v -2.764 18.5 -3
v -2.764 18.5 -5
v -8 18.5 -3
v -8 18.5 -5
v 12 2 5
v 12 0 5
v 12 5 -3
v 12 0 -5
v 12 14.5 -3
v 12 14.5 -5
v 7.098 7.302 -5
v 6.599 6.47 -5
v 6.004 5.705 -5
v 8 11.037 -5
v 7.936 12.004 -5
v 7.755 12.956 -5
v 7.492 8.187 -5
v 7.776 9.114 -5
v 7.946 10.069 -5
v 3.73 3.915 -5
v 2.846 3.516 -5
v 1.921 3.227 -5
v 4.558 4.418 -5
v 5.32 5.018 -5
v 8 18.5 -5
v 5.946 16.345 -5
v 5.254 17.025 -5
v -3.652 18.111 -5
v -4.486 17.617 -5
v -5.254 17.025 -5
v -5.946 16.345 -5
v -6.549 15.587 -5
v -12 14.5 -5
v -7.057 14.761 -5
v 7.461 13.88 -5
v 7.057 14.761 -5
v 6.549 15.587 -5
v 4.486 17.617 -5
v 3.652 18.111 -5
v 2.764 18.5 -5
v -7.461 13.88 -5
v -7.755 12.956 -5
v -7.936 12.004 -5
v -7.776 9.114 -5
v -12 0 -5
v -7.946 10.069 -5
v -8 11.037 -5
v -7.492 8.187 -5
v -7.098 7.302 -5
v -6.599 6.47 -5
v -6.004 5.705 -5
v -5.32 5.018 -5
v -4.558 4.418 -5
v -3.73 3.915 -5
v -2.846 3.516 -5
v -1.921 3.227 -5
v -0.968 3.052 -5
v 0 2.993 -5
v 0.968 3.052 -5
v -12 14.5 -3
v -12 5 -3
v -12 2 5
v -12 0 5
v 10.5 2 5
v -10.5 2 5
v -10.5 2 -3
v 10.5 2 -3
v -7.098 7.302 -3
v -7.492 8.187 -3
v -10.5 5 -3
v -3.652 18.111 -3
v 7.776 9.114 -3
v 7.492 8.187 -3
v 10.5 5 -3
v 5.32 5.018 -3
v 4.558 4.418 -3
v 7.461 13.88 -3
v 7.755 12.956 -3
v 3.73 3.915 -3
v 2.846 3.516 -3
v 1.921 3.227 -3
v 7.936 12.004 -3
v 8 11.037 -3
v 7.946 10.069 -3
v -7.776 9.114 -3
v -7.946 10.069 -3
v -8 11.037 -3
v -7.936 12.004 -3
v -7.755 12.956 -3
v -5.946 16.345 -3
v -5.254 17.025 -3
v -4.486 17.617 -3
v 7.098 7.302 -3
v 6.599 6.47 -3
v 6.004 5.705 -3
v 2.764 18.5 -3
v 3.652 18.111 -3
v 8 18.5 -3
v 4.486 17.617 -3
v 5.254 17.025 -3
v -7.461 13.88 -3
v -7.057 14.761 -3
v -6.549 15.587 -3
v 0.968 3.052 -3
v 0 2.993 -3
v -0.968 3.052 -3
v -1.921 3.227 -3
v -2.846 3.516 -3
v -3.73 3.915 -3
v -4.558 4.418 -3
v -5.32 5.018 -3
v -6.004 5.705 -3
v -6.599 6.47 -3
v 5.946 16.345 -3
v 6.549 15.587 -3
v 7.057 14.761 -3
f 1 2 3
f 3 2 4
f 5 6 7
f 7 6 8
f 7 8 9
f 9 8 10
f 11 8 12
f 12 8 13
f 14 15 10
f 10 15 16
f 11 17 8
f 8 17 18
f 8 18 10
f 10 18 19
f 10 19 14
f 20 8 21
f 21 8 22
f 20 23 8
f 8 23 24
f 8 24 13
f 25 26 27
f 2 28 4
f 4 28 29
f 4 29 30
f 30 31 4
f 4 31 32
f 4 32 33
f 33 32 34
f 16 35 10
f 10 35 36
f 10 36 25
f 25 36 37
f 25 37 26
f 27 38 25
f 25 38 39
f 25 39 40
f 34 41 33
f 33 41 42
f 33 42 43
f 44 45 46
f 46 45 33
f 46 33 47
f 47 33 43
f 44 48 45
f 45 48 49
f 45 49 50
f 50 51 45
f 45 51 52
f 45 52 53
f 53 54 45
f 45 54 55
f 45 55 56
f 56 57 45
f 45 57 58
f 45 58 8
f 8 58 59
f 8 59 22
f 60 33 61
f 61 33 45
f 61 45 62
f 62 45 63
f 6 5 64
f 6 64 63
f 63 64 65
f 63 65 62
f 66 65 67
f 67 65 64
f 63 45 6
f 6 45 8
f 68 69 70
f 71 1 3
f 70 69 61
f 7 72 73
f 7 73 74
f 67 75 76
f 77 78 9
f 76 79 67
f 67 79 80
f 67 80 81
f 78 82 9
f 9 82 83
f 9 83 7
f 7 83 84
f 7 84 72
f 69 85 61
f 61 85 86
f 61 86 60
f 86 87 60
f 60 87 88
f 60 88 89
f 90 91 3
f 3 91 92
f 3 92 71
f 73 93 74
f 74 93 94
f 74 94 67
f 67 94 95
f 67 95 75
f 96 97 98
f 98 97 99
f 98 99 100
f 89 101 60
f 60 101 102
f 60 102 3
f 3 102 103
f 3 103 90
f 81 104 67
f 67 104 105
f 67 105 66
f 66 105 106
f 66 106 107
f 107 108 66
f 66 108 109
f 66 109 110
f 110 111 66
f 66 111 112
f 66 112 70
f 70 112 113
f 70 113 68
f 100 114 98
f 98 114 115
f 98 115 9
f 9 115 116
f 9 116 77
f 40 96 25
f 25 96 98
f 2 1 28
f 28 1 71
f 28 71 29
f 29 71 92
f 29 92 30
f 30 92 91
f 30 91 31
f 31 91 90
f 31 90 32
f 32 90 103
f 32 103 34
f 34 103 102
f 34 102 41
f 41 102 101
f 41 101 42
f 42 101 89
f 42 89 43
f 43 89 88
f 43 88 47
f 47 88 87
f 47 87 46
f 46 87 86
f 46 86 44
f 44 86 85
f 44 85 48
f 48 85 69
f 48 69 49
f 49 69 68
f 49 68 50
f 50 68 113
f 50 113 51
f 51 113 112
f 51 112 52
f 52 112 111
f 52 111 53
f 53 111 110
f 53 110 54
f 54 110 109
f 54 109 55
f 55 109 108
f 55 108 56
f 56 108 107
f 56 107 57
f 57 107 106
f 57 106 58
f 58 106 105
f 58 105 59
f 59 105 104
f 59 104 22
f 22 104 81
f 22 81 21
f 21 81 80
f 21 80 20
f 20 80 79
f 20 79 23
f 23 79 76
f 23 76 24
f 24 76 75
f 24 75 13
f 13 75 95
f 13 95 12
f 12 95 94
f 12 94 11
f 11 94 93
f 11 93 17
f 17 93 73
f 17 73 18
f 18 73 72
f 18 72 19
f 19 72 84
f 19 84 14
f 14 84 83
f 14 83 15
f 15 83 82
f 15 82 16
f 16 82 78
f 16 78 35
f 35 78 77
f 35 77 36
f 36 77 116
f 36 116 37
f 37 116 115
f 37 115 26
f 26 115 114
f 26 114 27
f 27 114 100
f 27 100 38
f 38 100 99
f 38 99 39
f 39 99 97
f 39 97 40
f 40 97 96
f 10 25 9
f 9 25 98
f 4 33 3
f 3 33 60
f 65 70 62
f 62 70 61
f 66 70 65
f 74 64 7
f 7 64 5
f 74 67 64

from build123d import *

# Parameters (mm, degrees)
SKETCH1_W           = 24
SKETCH1_H           = 10
BOSS_EXTRUDE1_DEPTH = 2
SKETCH2_W           = 24
SKETCH2_H           = 2
BOSS_EXTRUDE2_DEPTH = 16.5
SKETCH3_R           = 8
CUT_EXTRUDE1_DEPTH  = 2
CUT_EXTRUDE2_DEPTH  = 2
BOSS_EXTRUDE4_DEPTH = 1.5
BOSS_EXTRUDE5_DEPTH = 1.5


with BuildPart() as part:
    # Sketch1 → Boss-Extrude1 (new body)
    with BuildSketch(Plane(origin=(0, 0, 0), x_dir=(1, 0, 0), z_dir=(0, 1, 0))):
        Rectangle(SKETCH1_W, SKETCH1_H)
    extrude(amount=BOSS_EXTRUDE1_DEPTH)

    # Sketch2 → Boss-Extrude2 (add)
    with BuildSketch(Plane(origin=(0, 2, 0), x_dir=(1, 0, 0), z_dir=(0, 1, 0))):
        with Locations((0, 4)):
            Rectangle(SKETCH2_W, SKETCH2_H)
    extrude(amount=BOSS_EXTRUDE2_DEPTH)

    # Sketch3 → Cut-Extrude1 (cut)
    with BuildSketch(Plane.XY.offset(-3)):
        with Locations((0, 10.992781272)):
            Circle(SKETCH3_R)
    extrude(amount=-CUT_EXTRUDE1_DEPTH, mode=Mode.SUBTRACT)

    # Sketch6 → Cut-Extrude2 (cut)
    with BuildSketch(Plane.XY.offset(-3)):
        Polygon((-12, 18.5), (-8, 18.5), (-12, 14.5), align=None)
        Polygon((12, 18.5), (8, 18.5), (12, 14.5), align=None)
    extrude(amount=-CUT_EXTRUDE2_DEPTH, mode=Mode.SUBTRACT)

    # Sketch7 → Boss-Extrude4 (add)
    with BuildSketch(Plane.ZY.offset(12)):
        Polygon((-3, 2), (-3, 5), (5, 2), align=None)
    extrude(amount=-BOSS_EXTRUDE4_DEPTH)

    # Sketch8 → Boss-Extrude5 (add)
    with BuildSketch(Plane(origin=(12, 0, 0), x_dir=(0, 0, -1), z_dir=(1, 0, 0))):
        Polygon((-5, 2), (3, 2), (3, 5), align=None)
    extrude(amount=-BOSS_EXTRUDE5_DEPTH)


solid = part.part
